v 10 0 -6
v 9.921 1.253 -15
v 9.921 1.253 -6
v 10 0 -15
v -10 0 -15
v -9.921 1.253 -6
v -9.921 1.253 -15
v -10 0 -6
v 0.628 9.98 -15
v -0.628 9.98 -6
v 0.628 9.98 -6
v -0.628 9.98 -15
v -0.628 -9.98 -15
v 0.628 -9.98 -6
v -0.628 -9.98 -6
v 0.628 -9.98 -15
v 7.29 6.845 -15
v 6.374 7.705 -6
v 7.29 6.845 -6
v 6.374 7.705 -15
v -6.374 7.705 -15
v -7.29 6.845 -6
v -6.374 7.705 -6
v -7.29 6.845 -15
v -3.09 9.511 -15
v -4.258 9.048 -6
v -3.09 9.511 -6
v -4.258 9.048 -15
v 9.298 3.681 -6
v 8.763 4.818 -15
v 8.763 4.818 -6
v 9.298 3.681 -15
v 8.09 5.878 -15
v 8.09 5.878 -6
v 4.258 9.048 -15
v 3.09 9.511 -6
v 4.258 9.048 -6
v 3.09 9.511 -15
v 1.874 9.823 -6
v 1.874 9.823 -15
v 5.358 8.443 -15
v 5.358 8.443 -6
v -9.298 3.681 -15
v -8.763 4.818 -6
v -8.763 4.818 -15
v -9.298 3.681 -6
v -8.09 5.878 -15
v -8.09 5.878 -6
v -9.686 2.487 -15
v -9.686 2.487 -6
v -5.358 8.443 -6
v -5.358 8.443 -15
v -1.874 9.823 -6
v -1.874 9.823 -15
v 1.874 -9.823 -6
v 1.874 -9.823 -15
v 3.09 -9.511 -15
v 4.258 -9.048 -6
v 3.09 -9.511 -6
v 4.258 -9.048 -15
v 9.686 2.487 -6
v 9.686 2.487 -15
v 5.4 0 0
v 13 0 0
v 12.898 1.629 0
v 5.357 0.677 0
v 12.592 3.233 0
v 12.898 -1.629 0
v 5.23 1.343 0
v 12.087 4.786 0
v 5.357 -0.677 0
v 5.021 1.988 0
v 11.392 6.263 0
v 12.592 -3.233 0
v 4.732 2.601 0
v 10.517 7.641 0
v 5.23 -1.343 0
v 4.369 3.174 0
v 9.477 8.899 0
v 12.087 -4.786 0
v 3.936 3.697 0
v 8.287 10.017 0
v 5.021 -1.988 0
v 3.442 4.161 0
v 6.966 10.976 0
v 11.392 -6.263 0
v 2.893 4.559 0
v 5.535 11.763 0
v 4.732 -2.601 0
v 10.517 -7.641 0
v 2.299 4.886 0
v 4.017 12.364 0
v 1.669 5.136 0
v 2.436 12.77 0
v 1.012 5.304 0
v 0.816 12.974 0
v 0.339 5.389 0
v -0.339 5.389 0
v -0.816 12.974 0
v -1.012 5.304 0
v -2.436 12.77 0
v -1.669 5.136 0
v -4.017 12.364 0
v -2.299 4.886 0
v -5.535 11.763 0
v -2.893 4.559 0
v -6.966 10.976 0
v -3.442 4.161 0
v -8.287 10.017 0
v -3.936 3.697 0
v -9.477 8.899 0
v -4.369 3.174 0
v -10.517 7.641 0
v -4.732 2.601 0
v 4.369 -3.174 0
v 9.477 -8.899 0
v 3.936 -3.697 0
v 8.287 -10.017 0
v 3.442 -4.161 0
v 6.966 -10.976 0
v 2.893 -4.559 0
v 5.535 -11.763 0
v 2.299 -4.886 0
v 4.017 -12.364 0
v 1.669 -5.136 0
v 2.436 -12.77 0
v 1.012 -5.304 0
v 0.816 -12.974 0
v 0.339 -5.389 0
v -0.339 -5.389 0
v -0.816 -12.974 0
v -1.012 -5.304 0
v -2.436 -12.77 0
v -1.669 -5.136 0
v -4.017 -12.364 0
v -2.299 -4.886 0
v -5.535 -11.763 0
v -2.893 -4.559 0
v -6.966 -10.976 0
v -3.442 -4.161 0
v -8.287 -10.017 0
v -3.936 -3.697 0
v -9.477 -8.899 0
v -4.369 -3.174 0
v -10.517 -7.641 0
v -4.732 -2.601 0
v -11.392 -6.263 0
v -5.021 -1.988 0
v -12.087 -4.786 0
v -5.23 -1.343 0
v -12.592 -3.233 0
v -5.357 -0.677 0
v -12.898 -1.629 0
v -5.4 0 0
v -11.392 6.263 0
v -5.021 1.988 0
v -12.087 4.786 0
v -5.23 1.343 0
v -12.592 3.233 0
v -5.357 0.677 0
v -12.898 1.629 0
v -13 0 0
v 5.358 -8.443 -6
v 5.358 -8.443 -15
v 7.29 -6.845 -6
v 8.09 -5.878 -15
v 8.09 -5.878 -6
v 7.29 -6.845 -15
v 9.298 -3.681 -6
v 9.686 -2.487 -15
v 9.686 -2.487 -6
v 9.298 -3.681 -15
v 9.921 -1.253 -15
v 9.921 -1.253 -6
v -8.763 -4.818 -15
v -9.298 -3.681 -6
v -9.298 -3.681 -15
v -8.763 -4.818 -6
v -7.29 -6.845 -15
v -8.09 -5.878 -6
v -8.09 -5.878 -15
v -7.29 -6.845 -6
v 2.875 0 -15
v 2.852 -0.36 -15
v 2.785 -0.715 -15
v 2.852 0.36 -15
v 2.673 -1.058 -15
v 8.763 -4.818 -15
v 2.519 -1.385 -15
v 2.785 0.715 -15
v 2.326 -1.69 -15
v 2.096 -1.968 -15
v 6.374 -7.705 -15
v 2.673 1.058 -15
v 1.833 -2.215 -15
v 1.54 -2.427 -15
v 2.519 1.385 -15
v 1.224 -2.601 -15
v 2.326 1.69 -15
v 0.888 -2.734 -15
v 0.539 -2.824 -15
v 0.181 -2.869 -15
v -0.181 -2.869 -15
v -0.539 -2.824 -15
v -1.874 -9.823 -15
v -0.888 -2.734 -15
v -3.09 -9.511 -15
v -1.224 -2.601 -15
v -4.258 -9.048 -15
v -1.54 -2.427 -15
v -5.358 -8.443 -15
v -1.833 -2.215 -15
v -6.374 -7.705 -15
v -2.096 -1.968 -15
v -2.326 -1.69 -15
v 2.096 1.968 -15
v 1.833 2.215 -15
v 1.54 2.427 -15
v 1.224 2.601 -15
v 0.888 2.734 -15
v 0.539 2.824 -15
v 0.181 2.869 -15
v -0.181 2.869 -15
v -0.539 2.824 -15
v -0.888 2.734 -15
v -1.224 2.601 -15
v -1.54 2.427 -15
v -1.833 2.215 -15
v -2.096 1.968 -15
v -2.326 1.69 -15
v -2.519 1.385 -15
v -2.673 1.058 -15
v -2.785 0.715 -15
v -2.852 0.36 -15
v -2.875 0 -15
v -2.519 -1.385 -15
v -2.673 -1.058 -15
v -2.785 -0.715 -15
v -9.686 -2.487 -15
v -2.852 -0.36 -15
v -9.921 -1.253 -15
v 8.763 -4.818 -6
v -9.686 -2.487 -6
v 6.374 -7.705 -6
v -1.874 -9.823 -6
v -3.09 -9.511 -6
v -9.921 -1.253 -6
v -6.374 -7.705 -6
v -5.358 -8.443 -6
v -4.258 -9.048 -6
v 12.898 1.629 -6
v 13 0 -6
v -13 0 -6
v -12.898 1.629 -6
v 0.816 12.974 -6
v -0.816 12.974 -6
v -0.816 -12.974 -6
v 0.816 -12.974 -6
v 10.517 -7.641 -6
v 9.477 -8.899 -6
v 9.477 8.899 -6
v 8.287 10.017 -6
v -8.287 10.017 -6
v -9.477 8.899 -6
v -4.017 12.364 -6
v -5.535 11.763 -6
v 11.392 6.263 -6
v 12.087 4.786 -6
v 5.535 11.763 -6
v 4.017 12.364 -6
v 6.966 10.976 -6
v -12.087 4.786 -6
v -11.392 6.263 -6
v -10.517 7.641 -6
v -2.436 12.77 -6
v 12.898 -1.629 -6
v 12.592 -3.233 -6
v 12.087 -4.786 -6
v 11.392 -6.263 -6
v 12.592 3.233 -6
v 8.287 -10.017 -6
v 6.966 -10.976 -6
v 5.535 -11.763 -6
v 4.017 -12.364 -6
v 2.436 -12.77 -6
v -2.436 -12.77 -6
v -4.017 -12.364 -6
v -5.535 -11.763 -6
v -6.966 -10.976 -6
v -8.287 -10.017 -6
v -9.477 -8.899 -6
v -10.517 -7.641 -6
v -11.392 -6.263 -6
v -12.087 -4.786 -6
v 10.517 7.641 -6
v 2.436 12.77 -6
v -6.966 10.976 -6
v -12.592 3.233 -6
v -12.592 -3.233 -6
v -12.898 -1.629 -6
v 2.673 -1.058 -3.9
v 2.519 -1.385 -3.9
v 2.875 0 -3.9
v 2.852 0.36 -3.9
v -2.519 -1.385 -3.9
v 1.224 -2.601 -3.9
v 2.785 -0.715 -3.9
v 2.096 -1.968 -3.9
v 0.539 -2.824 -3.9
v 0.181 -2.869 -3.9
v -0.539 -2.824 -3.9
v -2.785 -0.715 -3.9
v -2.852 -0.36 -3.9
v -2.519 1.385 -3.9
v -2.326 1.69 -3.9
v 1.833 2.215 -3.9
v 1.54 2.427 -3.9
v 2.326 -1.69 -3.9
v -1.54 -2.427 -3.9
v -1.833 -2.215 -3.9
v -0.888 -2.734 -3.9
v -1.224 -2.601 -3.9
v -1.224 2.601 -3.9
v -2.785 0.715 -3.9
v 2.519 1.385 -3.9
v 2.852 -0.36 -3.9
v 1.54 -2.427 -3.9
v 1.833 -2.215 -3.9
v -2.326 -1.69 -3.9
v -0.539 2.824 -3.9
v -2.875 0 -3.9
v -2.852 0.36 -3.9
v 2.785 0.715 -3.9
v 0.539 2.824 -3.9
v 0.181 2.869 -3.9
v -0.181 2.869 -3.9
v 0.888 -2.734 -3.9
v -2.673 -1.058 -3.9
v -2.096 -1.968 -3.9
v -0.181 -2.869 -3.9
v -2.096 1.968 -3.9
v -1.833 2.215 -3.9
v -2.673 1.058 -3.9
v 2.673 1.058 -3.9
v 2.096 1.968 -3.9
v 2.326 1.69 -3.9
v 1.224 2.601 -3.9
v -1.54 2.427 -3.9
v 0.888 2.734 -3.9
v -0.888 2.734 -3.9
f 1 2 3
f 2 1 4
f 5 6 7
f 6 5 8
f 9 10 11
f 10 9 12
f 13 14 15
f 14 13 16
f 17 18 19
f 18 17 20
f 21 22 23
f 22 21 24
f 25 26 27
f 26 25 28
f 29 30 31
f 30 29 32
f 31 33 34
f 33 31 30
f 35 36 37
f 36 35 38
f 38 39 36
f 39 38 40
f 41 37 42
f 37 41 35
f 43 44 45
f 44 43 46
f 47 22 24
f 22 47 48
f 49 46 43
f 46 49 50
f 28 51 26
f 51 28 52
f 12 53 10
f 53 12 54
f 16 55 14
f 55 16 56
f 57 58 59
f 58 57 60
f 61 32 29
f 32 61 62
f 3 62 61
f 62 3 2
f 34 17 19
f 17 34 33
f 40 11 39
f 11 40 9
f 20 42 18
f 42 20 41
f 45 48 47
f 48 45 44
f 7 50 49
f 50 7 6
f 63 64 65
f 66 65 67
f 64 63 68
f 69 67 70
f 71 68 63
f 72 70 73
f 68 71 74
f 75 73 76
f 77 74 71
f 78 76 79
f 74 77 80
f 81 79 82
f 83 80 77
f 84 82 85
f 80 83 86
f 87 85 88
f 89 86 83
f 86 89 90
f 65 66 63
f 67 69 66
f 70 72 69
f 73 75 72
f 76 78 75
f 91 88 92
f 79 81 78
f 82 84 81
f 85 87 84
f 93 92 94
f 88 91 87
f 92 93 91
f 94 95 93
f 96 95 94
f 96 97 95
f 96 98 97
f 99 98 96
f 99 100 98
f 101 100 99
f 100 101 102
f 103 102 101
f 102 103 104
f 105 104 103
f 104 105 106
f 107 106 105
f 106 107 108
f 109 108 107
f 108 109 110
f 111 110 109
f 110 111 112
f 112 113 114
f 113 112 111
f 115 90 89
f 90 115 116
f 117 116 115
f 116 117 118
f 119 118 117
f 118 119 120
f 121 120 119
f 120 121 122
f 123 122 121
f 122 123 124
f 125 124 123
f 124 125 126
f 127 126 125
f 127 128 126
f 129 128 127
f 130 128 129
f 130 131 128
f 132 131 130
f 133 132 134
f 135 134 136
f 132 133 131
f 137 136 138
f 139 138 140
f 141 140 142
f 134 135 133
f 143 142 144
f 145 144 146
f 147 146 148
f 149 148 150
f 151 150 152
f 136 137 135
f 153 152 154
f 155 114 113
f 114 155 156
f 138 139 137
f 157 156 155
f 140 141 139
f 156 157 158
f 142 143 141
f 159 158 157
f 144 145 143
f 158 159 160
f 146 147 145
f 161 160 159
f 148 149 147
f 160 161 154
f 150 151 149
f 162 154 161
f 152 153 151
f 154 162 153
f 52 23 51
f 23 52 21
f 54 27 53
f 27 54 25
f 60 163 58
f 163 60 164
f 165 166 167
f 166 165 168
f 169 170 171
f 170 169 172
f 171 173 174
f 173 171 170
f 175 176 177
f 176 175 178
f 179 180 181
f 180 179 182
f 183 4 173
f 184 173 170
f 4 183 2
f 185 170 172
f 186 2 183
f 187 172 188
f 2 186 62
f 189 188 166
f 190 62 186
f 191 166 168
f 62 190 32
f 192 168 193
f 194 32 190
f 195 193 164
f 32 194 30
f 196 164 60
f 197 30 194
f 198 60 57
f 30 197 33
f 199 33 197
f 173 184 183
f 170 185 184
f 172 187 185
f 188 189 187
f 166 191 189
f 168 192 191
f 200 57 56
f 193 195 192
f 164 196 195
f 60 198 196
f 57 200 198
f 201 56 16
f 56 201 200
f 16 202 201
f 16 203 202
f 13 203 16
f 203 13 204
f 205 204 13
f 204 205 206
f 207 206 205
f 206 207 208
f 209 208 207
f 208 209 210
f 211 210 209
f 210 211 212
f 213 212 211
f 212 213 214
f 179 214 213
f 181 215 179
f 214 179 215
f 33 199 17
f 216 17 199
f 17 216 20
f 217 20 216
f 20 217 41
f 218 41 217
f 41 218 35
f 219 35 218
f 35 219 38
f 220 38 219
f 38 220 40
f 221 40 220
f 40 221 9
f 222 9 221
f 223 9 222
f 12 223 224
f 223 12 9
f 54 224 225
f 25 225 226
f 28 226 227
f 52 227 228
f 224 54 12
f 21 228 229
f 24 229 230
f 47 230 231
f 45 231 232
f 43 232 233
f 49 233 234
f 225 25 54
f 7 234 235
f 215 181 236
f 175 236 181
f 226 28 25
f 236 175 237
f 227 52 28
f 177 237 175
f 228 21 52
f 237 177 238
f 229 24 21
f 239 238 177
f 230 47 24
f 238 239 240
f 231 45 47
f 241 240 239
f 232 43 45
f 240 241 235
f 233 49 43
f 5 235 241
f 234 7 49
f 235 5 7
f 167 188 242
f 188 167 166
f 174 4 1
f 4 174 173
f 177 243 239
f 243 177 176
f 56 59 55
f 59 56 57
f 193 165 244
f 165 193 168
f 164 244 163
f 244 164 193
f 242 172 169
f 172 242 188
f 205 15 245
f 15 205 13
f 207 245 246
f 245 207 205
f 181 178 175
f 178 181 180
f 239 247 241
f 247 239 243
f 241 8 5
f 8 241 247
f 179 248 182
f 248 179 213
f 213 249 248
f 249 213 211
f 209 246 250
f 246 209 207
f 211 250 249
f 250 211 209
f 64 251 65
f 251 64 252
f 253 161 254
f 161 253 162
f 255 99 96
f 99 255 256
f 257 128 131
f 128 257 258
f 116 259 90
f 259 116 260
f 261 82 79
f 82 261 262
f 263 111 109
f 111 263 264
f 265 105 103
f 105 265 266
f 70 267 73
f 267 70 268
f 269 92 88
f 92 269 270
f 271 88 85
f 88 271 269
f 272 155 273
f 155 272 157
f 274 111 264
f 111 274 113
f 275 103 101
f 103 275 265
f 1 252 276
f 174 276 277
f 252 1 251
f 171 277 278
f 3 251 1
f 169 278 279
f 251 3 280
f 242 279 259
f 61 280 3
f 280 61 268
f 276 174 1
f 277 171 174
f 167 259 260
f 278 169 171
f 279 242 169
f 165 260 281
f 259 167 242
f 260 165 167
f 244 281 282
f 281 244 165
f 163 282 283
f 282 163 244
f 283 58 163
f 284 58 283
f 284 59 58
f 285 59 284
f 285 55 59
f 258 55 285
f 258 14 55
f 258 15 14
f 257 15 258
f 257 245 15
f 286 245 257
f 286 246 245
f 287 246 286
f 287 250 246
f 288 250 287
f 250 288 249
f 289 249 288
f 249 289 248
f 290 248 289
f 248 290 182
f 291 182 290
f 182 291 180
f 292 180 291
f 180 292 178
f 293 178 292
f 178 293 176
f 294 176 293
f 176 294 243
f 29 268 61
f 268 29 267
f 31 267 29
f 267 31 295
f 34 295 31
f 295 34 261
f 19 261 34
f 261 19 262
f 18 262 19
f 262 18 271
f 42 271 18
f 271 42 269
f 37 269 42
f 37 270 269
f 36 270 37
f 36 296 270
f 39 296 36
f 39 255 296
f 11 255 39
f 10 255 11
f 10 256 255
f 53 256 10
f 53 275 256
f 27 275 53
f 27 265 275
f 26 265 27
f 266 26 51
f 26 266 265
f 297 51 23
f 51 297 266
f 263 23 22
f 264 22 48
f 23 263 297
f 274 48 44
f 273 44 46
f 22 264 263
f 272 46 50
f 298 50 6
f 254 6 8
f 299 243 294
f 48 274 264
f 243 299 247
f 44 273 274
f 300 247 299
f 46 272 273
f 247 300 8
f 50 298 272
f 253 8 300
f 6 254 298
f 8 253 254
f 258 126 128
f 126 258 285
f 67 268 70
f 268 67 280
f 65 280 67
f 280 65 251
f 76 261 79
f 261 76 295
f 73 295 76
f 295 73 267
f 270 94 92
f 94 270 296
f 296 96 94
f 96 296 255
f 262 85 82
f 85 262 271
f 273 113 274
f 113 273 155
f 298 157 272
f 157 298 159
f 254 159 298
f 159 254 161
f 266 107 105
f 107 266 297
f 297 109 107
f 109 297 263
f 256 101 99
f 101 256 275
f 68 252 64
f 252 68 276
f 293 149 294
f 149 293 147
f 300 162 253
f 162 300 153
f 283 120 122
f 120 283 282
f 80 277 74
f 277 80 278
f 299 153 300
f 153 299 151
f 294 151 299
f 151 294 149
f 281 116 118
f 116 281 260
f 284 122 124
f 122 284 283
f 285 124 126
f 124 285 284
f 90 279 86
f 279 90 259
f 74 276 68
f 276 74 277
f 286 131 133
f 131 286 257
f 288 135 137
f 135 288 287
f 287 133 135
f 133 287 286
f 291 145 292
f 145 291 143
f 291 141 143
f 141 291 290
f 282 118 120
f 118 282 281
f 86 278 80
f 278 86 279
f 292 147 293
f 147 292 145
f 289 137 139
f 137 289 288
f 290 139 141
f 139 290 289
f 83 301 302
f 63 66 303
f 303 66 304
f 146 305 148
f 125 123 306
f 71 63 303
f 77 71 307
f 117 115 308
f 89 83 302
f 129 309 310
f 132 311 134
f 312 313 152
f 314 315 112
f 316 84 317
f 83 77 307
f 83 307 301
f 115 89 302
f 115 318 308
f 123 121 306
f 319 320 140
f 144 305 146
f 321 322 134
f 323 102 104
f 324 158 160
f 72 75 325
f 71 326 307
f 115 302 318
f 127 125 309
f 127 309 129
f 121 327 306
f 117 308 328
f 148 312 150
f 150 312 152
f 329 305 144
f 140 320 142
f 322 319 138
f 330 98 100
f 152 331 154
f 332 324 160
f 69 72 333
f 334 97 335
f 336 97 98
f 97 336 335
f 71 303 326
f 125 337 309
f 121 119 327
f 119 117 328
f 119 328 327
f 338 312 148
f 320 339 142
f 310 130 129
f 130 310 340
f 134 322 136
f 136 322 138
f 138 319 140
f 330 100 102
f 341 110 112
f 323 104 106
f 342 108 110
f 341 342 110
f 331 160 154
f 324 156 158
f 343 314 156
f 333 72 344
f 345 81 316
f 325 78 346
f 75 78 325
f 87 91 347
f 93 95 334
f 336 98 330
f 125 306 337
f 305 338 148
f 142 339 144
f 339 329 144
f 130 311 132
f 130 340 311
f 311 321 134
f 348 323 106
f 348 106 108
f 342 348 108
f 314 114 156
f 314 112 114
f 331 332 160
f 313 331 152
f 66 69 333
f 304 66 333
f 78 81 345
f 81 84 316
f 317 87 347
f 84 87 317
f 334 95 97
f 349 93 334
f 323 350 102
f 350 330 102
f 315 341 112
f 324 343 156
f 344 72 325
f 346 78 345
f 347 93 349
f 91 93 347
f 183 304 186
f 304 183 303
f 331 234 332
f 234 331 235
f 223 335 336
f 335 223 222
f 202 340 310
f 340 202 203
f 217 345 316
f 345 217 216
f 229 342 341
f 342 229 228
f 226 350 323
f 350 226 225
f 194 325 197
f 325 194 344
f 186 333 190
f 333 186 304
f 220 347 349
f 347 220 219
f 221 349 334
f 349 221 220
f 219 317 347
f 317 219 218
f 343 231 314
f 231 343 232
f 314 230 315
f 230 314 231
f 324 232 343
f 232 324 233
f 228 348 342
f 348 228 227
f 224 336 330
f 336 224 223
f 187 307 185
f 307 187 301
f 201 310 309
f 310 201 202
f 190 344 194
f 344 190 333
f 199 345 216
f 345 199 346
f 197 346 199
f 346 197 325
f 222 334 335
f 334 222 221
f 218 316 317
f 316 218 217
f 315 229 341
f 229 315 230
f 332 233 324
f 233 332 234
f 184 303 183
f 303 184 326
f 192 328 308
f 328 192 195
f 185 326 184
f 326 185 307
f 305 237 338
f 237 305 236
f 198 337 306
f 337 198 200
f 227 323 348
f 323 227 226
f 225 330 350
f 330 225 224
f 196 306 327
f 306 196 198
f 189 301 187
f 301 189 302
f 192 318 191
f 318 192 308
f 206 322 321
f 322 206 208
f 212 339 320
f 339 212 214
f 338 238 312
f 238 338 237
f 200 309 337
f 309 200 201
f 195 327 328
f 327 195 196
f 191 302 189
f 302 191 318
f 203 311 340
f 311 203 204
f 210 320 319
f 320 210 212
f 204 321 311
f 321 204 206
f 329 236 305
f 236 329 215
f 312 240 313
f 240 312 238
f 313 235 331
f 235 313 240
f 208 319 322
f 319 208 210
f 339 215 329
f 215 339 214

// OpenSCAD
$fn = 50;


difference() {
	union() {
		translate(v = [0, 0, -15.0000000000]) {
			cylinder(h = 15, r = 10.0000000000);
		}
		translate(v = [0, 0, -6.0000000000]) {
			cylinder(h = 6, r = 13.0000000000);
		}
	}
	union() {
		translate(v = [0, 0, 0]) {
			rotate(a = [0, 0, 0]) {
				difference() {
					union() {
						#translate(v = [0, 0, -15.0000000000]) {
							cylinder(h = 15, r = 2.6000000000);
						}
						#translate(v = [0, 0, -3.9000000000]) {
							cylinder(h = 3.9000000000, r = 10.0000000000, r1 = 2.8750000000, r2 = 5.4000000000);
						}
						#translate(v = [0, 0, -15.0000000000]) {
							cylinder(h = 15, r = 2.8750000000);
						}
						#translate(v = [0, 0, -15.0000000000]) {
							cylinder(h = 15, r = 2.6000000000);
						}
					}
					union();
				}
			}
		}
	}
}
